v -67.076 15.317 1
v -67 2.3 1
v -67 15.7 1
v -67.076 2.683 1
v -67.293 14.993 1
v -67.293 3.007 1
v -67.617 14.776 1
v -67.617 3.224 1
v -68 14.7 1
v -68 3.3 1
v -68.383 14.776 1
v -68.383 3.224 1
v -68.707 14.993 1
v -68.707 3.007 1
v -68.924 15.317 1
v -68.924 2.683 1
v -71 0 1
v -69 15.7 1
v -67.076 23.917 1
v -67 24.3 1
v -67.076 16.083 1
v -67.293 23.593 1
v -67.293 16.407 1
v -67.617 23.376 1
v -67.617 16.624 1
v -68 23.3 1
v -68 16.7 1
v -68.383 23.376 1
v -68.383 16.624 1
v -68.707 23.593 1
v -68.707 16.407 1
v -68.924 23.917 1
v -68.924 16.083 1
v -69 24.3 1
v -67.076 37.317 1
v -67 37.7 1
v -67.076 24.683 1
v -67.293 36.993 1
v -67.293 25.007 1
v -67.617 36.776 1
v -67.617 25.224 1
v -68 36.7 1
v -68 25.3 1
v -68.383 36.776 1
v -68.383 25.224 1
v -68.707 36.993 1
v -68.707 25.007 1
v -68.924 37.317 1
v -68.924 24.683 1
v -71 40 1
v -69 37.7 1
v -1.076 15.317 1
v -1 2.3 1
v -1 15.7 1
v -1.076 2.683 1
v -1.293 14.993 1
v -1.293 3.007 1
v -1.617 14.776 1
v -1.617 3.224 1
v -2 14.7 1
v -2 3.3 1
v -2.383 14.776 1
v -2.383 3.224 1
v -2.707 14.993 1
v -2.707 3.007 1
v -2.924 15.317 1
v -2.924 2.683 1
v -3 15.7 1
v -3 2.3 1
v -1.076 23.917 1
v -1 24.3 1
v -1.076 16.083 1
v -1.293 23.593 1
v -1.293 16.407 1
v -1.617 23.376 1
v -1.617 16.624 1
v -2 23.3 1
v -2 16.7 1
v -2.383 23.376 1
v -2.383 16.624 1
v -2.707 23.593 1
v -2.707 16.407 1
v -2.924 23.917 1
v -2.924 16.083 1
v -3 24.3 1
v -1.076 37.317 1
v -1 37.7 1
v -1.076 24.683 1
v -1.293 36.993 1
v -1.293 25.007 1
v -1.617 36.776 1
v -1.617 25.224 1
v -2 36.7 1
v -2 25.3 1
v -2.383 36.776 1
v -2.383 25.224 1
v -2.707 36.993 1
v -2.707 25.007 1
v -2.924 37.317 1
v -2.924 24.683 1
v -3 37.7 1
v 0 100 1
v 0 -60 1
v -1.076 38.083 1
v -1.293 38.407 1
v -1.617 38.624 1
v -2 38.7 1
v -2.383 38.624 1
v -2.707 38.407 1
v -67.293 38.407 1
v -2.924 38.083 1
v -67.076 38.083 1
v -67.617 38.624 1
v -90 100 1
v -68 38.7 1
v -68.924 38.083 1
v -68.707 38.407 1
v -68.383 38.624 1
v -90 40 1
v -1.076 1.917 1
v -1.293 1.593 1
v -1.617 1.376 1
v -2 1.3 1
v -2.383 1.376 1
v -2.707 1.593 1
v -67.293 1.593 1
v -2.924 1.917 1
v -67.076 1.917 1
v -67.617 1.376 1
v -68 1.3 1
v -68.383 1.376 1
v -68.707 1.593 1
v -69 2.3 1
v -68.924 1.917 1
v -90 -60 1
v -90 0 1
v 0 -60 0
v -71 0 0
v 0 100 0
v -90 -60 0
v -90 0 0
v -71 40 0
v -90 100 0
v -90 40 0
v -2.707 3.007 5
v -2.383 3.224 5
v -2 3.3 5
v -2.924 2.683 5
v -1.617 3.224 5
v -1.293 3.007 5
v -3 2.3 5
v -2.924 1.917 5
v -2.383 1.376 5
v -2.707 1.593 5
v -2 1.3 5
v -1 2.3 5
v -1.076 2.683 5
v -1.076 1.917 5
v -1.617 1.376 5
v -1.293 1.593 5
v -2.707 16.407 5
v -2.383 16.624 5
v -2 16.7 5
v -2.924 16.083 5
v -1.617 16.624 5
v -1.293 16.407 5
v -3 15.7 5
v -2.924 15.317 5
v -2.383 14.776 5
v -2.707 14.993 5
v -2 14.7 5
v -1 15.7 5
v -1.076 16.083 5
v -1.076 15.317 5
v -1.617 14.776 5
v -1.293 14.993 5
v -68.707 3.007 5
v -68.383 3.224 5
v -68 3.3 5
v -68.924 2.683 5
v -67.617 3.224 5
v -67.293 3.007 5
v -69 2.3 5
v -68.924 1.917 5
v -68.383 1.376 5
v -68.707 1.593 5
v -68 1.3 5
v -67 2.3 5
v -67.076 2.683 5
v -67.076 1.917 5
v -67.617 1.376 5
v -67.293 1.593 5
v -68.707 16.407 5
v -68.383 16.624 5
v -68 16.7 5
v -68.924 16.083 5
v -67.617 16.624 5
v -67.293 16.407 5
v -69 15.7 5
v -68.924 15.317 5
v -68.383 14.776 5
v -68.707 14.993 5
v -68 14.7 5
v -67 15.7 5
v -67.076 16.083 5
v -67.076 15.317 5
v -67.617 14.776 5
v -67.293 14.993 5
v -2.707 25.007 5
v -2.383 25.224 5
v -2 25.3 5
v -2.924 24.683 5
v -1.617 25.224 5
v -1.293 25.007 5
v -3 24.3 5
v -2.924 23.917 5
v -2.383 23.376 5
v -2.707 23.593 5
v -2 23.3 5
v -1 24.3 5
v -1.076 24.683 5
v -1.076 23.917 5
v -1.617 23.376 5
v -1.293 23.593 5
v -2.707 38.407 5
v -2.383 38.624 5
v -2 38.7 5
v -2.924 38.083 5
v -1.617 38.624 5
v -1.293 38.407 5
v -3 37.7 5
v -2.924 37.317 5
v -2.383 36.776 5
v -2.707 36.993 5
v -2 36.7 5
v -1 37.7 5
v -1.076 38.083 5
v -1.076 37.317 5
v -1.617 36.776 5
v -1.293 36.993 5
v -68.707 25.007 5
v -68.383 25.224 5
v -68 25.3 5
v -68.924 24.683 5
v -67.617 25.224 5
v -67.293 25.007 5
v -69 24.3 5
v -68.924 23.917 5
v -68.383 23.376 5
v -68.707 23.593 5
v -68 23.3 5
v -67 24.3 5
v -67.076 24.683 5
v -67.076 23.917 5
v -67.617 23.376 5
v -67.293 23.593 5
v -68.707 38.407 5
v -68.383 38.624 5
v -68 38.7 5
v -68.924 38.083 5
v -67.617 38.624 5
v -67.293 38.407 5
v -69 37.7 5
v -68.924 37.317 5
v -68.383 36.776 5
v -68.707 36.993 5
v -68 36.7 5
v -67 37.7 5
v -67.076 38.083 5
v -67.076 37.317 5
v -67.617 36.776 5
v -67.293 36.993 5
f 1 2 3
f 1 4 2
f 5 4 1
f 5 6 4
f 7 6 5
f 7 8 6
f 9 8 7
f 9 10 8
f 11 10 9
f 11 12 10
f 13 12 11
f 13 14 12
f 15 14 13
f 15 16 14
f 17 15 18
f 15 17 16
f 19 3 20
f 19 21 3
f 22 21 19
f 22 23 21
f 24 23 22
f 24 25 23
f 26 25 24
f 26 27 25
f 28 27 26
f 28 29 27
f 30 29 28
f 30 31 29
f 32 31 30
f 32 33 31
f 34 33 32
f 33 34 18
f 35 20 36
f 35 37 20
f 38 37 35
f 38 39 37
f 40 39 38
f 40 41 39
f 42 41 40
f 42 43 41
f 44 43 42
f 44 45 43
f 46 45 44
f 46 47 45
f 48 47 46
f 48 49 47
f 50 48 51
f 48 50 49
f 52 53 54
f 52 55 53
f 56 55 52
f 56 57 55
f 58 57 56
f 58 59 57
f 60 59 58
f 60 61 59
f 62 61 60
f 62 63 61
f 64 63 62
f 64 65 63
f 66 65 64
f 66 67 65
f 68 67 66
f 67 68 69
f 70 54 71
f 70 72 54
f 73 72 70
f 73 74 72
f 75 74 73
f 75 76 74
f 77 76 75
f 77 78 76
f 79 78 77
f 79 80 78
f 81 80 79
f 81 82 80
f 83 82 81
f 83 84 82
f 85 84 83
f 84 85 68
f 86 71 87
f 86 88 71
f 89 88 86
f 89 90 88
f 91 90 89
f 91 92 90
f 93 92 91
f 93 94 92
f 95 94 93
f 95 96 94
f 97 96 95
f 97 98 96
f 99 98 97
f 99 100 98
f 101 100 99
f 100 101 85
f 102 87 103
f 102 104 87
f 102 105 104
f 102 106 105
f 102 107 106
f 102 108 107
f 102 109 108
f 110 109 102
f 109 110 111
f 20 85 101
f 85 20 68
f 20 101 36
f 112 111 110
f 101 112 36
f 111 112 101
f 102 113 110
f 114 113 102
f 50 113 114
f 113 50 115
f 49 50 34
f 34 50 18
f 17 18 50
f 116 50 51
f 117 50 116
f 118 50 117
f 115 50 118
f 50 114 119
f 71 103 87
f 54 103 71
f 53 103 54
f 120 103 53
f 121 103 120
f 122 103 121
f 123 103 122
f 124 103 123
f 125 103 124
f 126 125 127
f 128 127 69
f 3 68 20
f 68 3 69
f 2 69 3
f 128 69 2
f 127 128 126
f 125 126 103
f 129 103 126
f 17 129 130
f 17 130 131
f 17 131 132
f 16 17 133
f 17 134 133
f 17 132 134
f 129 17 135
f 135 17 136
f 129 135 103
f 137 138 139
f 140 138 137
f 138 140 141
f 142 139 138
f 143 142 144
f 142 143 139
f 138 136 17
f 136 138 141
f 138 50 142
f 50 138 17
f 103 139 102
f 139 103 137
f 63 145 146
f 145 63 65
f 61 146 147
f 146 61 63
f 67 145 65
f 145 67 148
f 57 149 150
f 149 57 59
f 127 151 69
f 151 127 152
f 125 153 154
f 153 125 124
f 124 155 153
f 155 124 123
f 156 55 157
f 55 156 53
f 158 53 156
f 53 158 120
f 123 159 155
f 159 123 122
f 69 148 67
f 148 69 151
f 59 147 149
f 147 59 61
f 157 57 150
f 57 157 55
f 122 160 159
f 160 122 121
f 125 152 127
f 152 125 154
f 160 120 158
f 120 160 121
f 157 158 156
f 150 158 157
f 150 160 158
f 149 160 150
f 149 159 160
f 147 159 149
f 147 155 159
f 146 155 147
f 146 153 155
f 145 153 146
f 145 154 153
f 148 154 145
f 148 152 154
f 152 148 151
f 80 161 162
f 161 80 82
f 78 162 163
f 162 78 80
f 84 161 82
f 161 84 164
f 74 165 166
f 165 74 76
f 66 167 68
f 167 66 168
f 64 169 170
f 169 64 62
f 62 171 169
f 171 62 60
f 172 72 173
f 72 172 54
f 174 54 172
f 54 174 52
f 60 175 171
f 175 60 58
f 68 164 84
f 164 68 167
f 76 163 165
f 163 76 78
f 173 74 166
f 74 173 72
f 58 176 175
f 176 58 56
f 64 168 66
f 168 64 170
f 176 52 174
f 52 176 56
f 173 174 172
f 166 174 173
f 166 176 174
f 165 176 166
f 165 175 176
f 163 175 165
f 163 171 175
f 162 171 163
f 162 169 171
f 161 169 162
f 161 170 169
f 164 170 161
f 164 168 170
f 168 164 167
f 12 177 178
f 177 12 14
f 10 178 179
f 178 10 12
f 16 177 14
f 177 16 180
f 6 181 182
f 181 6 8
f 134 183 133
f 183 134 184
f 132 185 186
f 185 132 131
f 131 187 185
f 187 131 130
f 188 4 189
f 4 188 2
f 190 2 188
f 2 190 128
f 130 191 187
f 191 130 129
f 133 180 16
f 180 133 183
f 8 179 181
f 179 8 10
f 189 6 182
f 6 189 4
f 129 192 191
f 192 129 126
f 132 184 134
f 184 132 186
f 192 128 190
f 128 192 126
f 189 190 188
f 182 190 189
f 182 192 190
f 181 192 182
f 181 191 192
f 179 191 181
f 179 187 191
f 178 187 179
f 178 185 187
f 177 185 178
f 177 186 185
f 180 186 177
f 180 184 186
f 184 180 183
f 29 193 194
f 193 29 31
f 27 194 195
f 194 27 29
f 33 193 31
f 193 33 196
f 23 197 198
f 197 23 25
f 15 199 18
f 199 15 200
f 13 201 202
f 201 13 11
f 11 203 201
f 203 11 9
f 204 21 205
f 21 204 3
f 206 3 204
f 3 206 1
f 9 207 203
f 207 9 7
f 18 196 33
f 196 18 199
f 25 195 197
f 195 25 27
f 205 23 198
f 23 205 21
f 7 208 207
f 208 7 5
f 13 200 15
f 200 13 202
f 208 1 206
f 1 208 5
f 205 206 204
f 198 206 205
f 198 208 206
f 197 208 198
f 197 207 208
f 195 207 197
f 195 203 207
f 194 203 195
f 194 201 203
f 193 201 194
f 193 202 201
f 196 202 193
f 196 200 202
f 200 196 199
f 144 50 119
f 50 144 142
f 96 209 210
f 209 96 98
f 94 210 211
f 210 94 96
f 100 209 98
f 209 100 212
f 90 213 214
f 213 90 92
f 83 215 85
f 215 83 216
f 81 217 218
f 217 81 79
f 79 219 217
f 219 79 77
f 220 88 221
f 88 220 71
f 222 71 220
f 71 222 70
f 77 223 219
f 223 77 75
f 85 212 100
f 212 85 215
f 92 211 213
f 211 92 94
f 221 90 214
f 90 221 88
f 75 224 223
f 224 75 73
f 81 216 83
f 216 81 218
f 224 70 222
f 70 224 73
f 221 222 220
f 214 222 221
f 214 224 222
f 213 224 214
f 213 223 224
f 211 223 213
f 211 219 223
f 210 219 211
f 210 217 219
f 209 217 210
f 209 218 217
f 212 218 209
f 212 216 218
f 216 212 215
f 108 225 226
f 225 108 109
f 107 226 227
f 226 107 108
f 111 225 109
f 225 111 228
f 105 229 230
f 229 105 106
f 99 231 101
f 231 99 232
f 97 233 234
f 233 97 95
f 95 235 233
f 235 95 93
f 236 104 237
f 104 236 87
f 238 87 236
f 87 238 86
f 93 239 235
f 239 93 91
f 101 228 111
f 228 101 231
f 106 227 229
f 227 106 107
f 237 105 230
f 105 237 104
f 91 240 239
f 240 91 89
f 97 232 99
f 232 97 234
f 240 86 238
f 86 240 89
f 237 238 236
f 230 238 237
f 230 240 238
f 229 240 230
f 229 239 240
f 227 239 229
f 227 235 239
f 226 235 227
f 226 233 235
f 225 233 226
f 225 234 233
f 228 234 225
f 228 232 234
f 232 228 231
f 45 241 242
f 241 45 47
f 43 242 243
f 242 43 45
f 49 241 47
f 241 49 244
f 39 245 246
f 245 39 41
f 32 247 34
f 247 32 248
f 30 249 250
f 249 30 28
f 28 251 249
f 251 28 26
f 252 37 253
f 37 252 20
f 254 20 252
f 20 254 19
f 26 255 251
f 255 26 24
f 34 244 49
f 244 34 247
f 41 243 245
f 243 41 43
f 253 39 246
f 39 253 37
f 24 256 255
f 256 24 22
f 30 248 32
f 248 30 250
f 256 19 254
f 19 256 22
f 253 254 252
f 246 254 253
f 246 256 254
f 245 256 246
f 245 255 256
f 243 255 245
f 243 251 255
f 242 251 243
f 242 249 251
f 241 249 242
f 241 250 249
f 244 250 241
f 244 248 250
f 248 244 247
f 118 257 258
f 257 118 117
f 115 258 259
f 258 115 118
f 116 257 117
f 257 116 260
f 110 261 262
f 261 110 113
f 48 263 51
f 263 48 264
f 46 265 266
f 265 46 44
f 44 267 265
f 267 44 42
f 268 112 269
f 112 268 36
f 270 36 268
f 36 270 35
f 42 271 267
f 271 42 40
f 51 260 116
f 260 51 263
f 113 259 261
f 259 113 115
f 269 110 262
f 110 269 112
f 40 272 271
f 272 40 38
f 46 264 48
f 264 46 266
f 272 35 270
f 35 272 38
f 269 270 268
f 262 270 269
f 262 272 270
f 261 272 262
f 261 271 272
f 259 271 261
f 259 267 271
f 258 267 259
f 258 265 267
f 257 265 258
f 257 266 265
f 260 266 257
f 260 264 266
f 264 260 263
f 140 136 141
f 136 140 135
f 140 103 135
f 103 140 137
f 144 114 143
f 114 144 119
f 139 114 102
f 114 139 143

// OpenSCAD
$fa = 1;
$fs = 0.4;

// Define the basic shape of the target base
base_w = 22;
base_d = 71;
base_h = 1;

standoff_radius = 1;
standoff_height = 5;

x_offset = 2.3;
y_offset = 2;

// Draw the base of the device we're interested in
// Relay 1
rotate(90)
union(){
    cube([base_w,base_d,base_h]);
    translate([x_offset,y_offset,0])
        cylinder(h=5,r=standoff_radius);
    translate([15.7,y_offset,0])
        cylinder(h=standoff_height,r=standoff_radius);
    translate([x_offset,68,0])
        cylinder(h=standoff_height,r=standoff_radius);
    translate([15.7,68,0])
        cylinder(h=standoff_height,r=standoff_radius);
    //Relay 2
    translate([base_w,0,0])
        cube([base_w-4,base_d,base_h]);
    translate([base_w+x_offset,y_offset,0])
        cylinder(h=5,r=standoff_radius);
    translate([base_w+15.7,y_offset,0])
        cylinder(h=standoff_height,r=standoff_radius);
    translate([base_w+x_offset,68,0])
        cylinder(h=standoff_height,r=standoff_radius);
    translate([base_w+15.7,68,0])
        cylinder(h=standoff_height,r=standoff_radius);
}
// Breadboard One
translate([-(90),-60,0])
    cube([90,60,1]);
    
// Breadboard Two
translate([-(90),(22*2)-4,0])
    cube([90,60,1]);
